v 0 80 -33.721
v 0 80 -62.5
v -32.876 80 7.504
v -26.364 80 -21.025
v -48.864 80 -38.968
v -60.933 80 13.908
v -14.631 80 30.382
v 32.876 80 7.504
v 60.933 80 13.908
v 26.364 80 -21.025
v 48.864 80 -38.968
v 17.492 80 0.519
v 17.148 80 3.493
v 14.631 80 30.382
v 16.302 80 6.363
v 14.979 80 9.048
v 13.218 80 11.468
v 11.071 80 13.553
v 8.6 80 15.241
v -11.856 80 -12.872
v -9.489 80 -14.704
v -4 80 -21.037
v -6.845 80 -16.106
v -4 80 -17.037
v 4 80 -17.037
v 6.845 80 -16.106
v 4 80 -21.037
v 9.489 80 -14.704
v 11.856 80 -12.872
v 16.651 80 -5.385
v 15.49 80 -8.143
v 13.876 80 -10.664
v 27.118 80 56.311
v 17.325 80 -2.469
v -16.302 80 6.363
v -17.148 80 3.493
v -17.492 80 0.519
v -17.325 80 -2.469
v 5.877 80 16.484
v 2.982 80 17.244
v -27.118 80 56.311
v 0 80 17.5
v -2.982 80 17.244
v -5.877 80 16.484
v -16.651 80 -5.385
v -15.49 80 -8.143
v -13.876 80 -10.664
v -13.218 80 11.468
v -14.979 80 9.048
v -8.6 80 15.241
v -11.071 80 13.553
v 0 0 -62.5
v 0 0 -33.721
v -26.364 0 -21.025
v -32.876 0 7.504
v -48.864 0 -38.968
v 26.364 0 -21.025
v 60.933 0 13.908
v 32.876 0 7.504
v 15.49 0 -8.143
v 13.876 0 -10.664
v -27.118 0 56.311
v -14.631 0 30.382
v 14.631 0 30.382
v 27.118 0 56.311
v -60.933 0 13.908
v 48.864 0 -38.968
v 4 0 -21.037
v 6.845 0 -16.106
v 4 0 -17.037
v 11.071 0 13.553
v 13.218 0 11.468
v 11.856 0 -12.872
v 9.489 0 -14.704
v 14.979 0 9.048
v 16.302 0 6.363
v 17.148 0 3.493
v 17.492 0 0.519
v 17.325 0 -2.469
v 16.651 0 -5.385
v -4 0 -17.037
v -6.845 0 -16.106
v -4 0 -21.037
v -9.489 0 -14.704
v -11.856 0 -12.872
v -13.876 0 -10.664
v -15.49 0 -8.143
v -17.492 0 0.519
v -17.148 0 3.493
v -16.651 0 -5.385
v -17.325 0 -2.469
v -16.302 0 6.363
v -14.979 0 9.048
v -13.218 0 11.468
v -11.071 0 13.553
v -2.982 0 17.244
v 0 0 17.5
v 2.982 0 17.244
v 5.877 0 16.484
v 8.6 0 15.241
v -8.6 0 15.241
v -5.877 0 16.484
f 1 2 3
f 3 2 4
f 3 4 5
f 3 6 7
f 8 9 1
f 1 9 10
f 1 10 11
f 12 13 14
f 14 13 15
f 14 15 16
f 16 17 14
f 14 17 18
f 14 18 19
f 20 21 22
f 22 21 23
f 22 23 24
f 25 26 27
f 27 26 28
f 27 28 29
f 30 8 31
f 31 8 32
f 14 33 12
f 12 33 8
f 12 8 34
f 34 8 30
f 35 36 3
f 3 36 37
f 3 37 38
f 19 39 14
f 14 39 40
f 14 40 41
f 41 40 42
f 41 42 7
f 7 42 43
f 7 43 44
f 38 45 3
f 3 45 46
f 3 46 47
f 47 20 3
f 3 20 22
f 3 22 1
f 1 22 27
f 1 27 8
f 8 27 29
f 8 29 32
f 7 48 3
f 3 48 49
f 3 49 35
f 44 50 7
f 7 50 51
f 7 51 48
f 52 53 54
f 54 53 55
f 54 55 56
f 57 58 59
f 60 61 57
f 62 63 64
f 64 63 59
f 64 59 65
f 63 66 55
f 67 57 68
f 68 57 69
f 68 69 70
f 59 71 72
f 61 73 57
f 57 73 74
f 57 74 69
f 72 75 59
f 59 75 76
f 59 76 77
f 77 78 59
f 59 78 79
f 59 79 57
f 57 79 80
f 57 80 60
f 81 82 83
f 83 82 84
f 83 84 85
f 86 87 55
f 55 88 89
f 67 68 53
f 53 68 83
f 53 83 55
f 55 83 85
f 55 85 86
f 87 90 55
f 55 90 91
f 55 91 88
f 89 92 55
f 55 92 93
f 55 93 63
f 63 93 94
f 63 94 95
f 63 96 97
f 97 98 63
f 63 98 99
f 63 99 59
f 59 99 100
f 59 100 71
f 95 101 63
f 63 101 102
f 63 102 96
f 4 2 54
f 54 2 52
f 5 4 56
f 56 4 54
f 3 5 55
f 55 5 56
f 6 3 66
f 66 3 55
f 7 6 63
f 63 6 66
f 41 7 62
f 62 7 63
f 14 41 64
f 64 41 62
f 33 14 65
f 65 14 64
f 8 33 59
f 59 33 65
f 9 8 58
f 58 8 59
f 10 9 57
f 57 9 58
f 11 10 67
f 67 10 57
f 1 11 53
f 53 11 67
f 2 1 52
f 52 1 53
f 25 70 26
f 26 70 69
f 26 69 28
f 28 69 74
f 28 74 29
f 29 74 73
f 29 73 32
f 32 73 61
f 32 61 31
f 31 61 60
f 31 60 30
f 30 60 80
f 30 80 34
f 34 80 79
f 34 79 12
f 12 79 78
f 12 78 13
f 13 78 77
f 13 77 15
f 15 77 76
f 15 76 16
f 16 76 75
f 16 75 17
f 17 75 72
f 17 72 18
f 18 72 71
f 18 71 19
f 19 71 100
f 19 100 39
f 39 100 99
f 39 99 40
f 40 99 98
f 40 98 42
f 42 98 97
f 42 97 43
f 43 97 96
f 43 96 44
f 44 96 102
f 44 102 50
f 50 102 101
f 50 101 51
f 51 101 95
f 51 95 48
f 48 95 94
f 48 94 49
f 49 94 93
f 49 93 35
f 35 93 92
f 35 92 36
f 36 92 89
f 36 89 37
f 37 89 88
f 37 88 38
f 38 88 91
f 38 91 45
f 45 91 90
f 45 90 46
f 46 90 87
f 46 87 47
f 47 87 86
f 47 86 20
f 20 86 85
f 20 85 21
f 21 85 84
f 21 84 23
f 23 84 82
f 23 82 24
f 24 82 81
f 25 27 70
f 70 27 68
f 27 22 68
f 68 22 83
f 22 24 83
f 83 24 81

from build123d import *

# Parameters (mm, degrees)
BOSS_EXTRUDE1_DEPTH = 80


with BuildPart() as part:
    # Sketch1 → Boss-Extrude1 (new body)
    with BuildSketch(Plane(origin=(0, 0, 0), x_dir=(1, 0, 0), z_dir=(0, 1, 0))):
        Polygon((0, 33.721419827), (0, 62.5), (-26.364467654, 21.024961366), (-48.864467654, 38.968112616), (-32.875953428, -7.503721834), (-60.932994511, -13.907558372), (-14.631175723, -30.381949446), (-27.117733695, -56.310554244), (14.631175723, -30.381949446), (27.117733695, -56.310554244), (32.875953428, -7.503721834), (60.932994511, -13.907558372), (26.364467654, 21.024961366), (48.864467654, 38.968112616), align=None)
        with BuildLine():
            Line((-4, 17.036725037), (-4, 21.036725037))
            Line((-4, 21.036725037), (4, 21.036725037))
            Line((4, 21.036725037), (4, 17.036725037))
            ThreePointArc((4, 17.036725037), (0, -17.5), (-4, 17.036725037))
        make_face(mode=Mode.SUBTRACT)
    extrude(amount=BOSS_EXTRUDE1_DEPTH)


solid = part.part
